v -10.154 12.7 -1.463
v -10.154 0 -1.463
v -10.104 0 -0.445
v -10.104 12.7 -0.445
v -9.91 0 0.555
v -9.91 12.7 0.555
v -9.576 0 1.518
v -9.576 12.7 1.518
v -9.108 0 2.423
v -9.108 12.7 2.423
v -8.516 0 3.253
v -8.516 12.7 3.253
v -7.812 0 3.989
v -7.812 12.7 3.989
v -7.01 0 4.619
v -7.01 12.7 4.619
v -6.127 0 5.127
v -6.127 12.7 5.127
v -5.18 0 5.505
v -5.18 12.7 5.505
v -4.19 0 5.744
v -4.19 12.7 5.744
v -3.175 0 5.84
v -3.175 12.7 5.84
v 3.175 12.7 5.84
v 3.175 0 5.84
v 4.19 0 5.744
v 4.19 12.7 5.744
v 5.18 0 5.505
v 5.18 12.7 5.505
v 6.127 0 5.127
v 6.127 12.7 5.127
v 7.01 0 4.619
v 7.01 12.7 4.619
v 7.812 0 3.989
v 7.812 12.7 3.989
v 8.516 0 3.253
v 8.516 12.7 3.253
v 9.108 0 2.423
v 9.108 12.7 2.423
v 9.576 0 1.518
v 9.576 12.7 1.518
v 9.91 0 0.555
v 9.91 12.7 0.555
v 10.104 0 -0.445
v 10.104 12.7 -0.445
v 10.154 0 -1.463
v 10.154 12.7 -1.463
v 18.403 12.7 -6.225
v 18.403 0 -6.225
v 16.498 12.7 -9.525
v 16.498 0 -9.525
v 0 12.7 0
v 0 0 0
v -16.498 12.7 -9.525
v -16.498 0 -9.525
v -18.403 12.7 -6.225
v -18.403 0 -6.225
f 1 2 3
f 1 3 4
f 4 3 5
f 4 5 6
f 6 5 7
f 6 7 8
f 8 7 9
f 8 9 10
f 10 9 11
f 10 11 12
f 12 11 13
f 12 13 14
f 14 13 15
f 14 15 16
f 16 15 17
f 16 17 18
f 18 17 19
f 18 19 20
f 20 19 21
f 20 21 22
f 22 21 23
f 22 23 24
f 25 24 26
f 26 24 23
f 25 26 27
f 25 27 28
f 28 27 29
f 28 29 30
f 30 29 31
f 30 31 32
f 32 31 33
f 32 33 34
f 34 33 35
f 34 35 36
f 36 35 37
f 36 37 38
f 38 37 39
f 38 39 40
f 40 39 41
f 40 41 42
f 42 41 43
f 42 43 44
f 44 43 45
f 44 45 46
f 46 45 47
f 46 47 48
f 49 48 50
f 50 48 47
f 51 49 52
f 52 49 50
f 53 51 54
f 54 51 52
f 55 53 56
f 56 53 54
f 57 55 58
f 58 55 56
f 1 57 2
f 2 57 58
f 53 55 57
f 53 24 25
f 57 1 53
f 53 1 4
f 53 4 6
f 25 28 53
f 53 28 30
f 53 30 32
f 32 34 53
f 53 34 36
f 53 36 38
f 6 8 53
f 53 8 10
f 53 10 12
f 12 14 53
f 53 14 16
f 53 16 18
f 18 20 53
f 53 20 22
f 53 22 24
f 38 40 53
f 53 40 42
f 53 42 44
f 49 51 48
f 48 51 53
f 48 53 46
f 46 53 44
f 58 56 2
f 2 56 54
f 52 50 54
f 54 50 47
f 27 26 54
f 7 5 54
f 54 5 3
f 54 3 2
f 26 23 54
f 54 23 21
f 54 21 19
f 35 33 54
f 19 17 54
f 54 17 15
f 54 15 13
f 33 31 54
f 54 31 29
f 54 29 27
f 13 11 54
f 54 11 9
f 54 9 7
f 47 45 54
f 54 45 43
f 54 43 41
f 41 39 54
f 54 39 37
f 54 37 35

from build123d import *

# Parameters (mm, degrees)
BOSS_EXTRUDE1_DEPTH = 12.7


with BuildPart() as part:
    # Sketch1 → Boss-Extrude1 (new body)
    with BuildSketch(Plane(origin=(0, 0, 0), x_dir=(1, 0, 0), z_dir=(0, 1, 0))):
        with BuildLine():
            Line((0, 0), (16.497783942, 9.525))
            Line((16.497783942, 9.525), (18.402783942, 6.225443212))
            Line((18.402783942, 6.225443212), (10.153891971, 1.462943212))
            ThreePointArc((10.153891971, 1.462943212), (8.176843255, -3.633682641), (3.175, -5.839556788))
            Line((3.175, -5.839556788), (-3.175, -5.839556788))
            ThreePointArc((-3.175, -5.839556788), (-8.176843255, -3.633682641), (-10.153891971, 1.462943212))
            Line((-10.153891971, 1.462943212), (-18.402783942, 6.225443212))
            Line((-18.402783942, 6.225443212), (-16.497783942, 9.525))
            Line((-16.497783942, 9.525), (0, 0))
        make_face()
    extrude(amount=BOSS_EXTRUDE1_DEPTH)


solid = part.part
